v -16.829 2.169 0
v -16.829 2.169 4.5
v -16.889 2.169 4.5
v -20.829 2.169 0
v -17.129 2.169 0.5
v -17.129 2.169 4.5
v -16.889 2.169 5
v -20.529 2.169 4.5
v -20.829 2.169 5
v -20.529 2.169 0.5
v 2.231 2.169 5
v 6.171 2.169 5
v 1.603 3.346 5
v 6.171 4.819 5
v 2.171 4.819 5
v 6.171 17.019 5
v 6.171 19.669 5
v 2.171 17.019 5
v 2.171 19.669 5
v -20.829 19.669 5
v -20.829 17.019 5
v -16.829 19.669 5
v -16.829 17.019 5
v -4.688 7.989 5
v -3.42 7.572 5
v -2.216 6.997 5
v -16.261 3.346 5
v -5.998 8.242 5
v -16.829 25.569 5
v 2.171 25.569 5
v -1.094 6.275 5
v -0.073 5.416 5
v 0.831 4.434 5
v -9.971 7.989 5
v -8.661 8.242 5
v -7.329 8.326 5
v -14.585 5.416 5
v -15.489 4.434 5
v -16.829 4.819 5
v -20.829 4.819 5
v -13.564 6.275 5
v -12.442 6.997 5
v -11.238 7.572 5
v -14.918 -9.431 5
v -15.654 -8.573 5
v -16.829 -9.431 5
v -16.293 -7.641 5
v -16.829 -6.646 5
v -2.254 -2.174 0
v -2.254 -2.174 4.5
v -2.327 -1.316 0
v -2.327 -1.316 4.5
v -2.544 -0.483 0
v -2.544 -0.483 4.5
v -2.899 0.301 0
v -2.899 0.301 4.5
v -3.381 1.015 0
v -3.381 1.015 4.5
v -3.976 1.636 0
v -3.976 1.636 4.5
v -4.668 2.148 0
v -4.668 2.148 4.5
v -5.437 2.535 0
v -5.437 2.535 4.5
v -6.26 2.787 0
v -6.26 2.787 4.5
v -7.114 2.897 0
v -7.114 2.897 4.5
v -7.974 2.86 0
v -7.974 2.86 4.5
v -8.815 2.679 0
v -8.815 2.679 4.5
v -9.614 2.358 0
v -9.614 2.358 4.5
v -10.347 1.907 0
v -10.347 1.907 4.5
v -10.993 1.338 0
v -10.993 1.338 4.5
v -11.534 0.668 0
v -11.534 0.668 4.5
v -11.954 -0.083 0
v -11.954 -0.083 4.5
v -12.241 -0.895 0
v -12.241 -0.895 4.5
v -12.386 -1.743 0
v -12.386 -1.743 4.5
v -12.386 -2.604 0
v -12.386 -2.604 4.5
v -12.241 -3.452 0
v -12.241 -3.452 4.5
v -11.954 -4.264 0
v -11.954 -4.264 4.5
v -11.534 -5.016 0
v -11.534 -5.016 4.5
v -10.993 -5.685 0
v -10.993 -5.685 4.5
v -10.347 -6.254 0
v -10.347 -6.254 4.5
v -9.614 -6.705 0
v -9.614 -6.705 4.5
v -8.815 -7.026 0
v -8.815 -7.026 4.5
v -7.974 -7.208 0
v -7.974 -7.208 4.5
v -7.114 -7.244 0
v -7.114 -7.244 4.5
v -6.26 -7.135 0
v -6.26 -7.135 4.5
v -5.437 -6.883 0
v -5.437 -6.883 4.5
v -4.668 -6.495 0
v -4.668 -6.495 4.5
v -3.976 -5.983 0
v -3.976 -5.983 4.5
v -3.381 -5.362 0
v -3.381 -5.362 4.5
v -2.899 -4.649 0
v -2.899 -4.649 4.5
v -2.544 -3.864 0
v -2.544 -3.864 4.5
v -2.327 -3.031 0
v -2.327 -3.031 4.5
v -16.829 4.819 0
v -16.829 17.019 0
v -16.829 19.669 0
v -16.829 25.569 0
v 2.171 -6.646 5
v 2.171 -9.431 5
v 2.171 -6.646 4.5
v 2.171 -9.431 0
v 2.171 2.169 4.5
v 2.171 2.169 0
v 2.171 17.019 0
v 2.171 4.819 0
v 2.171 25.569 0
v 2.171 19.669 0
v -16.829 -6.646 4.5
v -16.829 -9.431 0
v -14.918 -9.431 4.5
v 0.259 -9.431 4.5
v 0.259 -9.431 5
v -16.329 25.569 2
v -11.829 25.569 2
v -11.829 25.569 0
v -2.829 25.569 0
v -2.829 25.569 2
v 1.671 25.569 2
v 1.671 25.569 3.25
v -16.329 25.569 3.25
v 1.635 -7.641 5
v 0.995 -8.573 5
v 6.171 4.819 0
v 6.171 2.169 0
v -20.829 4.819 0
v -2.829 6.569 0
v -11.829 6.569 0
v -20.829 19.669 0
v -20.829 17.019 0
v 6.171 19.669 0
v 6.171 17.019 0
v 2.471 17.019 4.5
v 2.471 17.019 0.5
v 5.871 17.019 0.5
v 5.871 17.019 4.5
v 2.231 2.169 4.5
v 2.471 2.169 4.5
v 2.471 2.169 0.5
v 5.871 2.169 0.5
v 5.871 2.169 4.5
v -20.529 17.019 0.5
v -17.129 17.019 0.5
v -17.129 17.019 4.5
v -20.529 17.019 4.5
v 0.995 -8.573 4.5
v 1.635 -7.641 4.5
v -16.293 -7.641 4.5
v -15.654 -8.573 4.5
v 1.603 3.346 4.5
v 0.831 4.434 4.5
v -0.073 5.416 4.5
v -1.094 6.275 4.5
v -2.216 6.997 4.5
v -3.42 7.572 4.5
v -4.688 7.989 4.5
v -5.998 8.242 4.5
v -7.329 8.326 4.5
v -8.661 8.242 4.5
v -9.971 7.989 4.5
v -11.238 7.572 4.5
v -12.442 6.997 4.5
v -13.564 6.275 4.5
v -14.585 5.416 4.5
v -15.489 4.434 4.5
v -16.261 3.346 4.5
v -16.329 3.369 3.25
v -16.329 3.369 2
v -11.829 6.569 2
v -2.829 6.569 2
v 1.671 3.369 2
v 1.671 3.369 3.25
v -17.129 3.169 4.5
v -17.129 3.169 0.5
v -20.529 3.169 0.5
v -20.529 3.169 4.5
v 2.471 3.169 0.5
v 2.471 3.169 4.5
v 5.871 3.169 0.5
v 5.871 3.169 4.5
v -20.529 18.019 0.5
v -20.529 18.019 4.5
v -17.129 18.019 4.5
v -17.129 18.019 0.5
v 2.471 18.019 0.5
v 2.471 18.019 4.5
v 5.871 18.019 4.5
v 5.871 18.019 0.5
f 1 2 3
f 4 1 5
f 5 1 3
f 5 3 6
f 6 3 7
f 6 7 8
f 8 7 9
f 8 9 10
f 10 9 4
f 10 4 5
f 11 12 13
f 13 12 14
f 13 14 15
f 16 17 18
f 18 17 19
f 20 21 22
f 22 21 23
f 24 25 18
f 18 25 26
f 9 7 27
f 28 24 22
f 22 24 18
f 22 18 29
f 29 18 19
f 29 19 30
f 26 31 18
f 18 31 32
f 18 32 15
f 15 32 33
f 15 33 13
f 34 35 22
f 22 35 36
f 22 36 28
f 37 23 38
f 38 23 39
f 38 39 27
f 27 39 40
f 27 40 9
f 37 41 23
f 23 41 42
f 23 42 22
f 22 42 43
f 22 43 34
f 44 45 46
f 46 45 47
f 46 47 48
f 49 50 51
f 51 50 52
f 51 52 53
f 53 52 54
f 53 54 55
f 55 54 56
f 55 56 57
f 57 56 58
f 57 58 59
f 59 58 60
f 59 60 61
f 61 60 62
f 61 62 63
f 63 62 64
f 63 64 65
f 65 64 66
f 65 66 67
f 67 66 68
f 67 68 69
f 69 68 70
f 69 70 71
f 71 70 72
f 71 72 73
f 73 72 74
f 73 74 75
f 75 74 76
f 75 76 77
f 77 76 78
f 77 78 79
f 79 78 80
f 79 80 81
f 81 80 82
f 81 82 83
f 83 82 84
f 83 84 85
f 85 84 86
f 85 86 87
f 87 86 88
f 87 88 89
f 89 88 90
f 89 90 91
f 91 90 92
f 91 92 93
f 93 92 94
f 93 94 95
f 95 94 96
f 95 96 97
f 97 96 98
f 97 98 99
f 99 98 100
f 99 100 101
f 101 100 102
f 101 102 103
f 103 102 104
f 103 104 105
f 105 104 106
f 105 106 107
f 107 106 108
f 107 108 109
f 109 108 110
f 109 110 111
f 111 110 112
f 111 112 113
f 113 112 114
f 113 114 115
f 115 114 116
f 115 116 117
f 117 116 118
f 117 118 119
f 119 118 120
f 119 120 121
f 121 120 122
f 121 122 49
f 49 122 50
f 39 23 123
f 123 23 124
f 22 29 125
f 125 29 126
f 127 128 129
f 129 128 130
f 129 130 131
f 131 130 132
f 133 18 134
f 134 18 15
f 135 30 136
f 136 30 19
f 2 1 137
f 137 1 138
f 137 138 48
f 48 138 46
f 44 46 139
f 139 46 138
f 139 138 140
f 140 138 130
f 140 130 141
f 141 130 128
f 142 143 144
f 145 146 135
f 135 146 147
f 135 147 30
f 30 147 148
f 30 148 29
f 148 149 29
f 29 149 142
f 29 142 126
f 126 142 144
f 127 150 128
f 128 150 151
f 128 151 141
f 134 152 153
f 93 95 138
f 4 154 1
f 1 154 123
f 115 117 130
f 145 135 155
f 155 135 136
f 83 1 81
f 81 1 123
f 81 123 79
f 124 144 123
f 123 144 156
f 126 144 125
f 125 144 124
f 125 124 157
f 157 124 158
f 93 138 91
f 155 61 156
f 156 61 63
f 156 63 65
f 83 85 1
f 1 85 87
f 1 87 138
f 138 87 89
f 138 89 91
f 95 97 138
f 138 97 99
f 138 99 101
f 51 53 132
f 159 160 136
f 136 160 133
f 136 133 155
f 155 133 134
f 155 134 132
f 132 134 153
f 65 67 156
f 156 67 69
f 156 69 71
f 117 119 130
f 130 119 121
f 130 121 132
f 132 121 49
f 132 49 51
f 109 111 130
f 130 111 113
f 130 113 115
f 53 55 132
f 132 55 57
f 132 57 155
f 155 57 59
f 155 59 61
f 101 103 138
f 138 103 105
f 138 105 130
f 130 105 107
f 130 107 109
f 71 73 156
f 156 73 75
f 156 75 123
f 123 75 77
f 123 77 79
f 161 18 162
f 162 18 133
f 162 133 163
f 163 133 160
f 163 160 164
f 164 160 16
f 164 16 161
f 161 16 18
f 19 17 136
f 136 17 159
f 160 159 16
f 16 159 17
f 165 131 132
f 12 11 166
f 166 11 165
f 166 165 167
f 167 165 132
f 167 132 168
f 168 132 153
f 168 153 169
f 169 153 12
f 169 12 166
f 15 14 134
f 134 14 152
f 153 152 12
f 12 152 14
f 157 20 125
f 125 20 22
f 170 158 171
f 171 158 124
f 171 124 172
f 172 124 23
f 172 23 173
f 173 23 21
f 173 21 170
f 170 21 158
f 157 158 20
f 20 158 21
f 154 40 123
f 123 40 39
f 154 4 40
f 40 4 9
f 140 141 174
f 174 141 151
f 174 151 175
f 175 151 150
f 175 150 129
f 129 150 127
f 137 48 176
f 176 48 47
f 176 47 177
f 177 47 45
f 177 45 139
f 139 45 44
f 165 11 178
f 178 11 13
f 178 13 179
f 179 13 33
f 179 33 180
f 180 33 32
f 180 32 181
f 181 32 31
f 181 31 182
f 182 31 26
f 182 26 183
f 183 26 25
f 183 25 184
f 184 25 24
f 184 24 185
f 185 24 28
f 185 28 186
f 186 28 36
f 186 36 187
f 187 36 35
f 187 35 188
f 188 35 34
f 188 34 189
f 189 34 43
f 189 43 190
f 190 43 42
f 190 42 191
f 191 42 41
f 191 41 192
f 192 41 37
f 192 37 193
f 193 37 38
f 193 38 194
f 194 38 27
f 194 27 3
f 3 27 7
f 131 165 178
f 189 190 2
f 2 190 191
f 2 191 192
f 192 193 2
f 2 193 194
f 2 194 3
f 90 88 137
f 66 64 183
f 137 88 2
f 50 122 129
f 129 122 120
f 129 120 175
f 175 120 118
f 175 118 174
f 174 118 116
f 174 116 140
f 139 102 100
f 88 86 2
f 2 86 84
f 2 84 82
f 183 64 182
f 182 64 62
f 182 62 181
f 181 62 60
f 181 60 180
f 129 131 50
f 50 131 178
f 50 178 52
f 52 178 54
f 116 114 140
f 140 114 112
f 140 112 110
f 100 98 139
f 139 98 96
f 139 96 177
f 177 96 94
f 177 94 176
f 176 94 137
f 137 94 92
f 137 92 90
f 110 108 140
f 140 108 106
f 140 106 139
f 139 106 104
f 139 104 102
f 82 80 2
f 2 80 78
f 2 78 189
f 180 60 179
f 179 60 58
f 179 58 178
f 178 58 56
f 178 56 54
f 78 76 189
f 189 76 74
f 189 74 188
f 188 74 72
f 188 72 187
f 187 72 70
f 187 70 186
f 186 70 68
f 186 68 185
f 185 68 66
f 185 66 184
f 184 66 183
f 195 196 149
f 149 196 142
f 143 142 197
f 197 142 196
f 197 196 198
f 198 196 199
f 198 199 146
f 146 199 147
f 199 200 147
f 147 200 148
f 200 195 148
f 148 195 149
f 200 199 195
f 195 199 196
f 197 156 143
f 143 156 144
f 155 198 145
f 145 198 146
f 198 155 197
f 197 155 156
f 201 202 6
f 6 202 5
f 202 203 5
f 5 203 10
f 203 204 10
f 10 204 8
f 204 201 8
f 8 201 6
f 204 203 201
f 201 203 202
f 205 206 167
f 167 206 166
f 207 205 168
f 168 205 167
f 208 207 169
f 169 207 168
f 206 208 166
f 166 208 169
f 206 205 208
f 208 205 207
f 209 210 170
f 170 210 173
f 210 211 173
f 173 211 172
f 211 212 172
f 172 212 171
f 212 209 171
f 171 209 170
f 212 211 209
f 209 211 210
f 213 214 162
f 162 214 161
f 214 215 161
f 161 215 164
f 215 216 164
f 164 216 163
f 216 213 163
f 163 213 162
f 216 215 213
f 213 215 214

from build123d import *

# Parameters (mm, degrees)
SKETCH2_W           = 19
SKETCH2_H           = 35
BOSS_EXTRUDE1_DEPTH = 5
SKETCH3_W           = 5
SKETCH3_H           = 2.65
BOSS_EXTRUDE2_DEPTH = 13.5
SKETCH3_2_W         = 5
SKETCH3_2_H         = 2.65
BOSS_EXTRUDE3_DEPTH = 13.5
SKETCH4_R           = 5.075
CUT_EXTRUDE1_DEPTH  = 34.35622256
SKETCH5_R           = 10.5
CUT_EXTRUDE2_DEPTH  = 0.5
SKETCH7_W           = 18
SKETCH7_H           = 1.25
CUT_EXTRUDE3_DEPTH  = 22.2
SKETCH8_W           = 9
SKETCH8_H           = 2
CUT_EXTRUDE4_DEPTH  = 19
SKETCH9_W           = 3.4
SKETCH9_H           = 4
CUT_EXTRUDE5_DEPTH  = 1
SKETCH10_W          = 3.4
SKETCH10_H          = 4
CUT_EXTRUDE6_DEPTH  = 1


with BuildPart() as part:
    # Sketch2 → Boss-Extrude1 (new body)
    with BuildSketch(Plane.XY):
        with Locations((-7.329268293, 8.069105691)):
            Rectangle(SKETCH2_W, SKETCH2_H)
    extrude(amount=BOSS_EXTRUDE1_DEPTH)

    # Sketch3 → Boss-Extrude2 (add)
    with BuildSketch(Plane(origin=(-7.329268293, 0, 0), x_dir=(0, 0, -1), z_dir=(1, 0, 0))):
        with Locations((-2.5, 18.344105691)):
            Rectangle(SKETCH3_W, SKETCH3_H)
        with Locations((-2.5, 3.494105691)):
            Rectangle(SKETCH3_W, SKETCH3_H)
    extrude(amount=BOSS_EXTRUDE2_DEPTH)

    # Sketch3<2> → Boss-Extrude3 (add)
    with BuildSketch(Plane(origin=(-7.329268293, 0, 0), x_dir=(0, 0, -1), z_dir=(1, 0, 0))):
        with Locations((-2.5, 18.344105691)):
            Rectangle(SKETCH3_2_W, SKETCH3_2_H)
        with Locations((-2.5, 3.494105691)):
            Rectangle(SKETCH3_2_W, SKETCH3_2_H)
    extrude(amount=-BOSS_EXTRUDE3_DEPTH)

    # Sketch4 → Cut-Extrude1 (cut, through all)
    with BuildSketch(Plane.XY.offset(5)):
        with Locations((-7.329268293, -2.173702028)):
            Circle(SKETCH4_R)
    extrude(amount=-CUT_EXTRUDE1_DEPTH, mode=Mode.SUBTRACT)

    # Sketch5 → Cut-Extrude2 (cut)
    with BuildSketch(Plane.XY.offset(5)):
        with Locations((-7.329268293, -2.173702028)):
            Circle(SKETCH5_R)
    extrude(amount=-CUT_EXTRUDE2_DEPTH, mode=Mode.SUBTRACT)

    # Sketch7 → Cut-Extrude3 (cut)
    with BuildSketch(Plane(origin=(0, 25.569105691, 0), x_dir=(1, 0, 0), z_dir=(0, 1, 0))):
        with Locations((-7.329268293, -2.625)):
            Rectangle(SKETCH7_W, SKETCH7_H)
    extrude(amount=-CUT_EXTRUDE3_DEPTH, mode=Mode.SUBTRACT)

    # Sketch8 → Cut-Extrude4 (cut)
    with BuildSketch(Plane(origin=(0, 25.569105691, 0), x_dir=(1, 0, 0), z_dir=(0, 1, 0))):
        with Locations((-7.329268293, -1)):
            Rectangle(SKETCH8_W, SKETCH8_H)
    extrude(amount=-CUT_EXTRUDE4_DEPTH, mode=Mode.SUBTRACT)

    # Sketch9 → Cut-Extrude5 (cut)
    with BuildSketch(Plane.XZ.offset(-2.169105691)):
        with Locations((-18.829268293, 2.5)):
            Rectangle(SKETCH9_W, SKETCH9_H)
        with Locations((4.170731707, 2.5)):
            Rectangle(SKETCH9_W, SKETCH9_H)
    extrude(amount=-CUT_EXTRUDE5_DEPTH, mode=Mode.SUBTRACT)

    # Sketch10 → Cut-Extrude6 (cut)
    with BuildSketch(Plane.XZ.offset(-17.019105691)):
        with Locations((-18.829268293, 2.5)):
            Rectangle(SKETCH10_W, SKETCH10_H)
        with Locations((4.170731707, 2.5)):
            Rectangle(SKETCH10_W, SKETCH10_H)
    extrude(amount=-CUT_EXTRUDE6_DEPTH, mode=Mode.SUBTRACT)


solid = part.part
